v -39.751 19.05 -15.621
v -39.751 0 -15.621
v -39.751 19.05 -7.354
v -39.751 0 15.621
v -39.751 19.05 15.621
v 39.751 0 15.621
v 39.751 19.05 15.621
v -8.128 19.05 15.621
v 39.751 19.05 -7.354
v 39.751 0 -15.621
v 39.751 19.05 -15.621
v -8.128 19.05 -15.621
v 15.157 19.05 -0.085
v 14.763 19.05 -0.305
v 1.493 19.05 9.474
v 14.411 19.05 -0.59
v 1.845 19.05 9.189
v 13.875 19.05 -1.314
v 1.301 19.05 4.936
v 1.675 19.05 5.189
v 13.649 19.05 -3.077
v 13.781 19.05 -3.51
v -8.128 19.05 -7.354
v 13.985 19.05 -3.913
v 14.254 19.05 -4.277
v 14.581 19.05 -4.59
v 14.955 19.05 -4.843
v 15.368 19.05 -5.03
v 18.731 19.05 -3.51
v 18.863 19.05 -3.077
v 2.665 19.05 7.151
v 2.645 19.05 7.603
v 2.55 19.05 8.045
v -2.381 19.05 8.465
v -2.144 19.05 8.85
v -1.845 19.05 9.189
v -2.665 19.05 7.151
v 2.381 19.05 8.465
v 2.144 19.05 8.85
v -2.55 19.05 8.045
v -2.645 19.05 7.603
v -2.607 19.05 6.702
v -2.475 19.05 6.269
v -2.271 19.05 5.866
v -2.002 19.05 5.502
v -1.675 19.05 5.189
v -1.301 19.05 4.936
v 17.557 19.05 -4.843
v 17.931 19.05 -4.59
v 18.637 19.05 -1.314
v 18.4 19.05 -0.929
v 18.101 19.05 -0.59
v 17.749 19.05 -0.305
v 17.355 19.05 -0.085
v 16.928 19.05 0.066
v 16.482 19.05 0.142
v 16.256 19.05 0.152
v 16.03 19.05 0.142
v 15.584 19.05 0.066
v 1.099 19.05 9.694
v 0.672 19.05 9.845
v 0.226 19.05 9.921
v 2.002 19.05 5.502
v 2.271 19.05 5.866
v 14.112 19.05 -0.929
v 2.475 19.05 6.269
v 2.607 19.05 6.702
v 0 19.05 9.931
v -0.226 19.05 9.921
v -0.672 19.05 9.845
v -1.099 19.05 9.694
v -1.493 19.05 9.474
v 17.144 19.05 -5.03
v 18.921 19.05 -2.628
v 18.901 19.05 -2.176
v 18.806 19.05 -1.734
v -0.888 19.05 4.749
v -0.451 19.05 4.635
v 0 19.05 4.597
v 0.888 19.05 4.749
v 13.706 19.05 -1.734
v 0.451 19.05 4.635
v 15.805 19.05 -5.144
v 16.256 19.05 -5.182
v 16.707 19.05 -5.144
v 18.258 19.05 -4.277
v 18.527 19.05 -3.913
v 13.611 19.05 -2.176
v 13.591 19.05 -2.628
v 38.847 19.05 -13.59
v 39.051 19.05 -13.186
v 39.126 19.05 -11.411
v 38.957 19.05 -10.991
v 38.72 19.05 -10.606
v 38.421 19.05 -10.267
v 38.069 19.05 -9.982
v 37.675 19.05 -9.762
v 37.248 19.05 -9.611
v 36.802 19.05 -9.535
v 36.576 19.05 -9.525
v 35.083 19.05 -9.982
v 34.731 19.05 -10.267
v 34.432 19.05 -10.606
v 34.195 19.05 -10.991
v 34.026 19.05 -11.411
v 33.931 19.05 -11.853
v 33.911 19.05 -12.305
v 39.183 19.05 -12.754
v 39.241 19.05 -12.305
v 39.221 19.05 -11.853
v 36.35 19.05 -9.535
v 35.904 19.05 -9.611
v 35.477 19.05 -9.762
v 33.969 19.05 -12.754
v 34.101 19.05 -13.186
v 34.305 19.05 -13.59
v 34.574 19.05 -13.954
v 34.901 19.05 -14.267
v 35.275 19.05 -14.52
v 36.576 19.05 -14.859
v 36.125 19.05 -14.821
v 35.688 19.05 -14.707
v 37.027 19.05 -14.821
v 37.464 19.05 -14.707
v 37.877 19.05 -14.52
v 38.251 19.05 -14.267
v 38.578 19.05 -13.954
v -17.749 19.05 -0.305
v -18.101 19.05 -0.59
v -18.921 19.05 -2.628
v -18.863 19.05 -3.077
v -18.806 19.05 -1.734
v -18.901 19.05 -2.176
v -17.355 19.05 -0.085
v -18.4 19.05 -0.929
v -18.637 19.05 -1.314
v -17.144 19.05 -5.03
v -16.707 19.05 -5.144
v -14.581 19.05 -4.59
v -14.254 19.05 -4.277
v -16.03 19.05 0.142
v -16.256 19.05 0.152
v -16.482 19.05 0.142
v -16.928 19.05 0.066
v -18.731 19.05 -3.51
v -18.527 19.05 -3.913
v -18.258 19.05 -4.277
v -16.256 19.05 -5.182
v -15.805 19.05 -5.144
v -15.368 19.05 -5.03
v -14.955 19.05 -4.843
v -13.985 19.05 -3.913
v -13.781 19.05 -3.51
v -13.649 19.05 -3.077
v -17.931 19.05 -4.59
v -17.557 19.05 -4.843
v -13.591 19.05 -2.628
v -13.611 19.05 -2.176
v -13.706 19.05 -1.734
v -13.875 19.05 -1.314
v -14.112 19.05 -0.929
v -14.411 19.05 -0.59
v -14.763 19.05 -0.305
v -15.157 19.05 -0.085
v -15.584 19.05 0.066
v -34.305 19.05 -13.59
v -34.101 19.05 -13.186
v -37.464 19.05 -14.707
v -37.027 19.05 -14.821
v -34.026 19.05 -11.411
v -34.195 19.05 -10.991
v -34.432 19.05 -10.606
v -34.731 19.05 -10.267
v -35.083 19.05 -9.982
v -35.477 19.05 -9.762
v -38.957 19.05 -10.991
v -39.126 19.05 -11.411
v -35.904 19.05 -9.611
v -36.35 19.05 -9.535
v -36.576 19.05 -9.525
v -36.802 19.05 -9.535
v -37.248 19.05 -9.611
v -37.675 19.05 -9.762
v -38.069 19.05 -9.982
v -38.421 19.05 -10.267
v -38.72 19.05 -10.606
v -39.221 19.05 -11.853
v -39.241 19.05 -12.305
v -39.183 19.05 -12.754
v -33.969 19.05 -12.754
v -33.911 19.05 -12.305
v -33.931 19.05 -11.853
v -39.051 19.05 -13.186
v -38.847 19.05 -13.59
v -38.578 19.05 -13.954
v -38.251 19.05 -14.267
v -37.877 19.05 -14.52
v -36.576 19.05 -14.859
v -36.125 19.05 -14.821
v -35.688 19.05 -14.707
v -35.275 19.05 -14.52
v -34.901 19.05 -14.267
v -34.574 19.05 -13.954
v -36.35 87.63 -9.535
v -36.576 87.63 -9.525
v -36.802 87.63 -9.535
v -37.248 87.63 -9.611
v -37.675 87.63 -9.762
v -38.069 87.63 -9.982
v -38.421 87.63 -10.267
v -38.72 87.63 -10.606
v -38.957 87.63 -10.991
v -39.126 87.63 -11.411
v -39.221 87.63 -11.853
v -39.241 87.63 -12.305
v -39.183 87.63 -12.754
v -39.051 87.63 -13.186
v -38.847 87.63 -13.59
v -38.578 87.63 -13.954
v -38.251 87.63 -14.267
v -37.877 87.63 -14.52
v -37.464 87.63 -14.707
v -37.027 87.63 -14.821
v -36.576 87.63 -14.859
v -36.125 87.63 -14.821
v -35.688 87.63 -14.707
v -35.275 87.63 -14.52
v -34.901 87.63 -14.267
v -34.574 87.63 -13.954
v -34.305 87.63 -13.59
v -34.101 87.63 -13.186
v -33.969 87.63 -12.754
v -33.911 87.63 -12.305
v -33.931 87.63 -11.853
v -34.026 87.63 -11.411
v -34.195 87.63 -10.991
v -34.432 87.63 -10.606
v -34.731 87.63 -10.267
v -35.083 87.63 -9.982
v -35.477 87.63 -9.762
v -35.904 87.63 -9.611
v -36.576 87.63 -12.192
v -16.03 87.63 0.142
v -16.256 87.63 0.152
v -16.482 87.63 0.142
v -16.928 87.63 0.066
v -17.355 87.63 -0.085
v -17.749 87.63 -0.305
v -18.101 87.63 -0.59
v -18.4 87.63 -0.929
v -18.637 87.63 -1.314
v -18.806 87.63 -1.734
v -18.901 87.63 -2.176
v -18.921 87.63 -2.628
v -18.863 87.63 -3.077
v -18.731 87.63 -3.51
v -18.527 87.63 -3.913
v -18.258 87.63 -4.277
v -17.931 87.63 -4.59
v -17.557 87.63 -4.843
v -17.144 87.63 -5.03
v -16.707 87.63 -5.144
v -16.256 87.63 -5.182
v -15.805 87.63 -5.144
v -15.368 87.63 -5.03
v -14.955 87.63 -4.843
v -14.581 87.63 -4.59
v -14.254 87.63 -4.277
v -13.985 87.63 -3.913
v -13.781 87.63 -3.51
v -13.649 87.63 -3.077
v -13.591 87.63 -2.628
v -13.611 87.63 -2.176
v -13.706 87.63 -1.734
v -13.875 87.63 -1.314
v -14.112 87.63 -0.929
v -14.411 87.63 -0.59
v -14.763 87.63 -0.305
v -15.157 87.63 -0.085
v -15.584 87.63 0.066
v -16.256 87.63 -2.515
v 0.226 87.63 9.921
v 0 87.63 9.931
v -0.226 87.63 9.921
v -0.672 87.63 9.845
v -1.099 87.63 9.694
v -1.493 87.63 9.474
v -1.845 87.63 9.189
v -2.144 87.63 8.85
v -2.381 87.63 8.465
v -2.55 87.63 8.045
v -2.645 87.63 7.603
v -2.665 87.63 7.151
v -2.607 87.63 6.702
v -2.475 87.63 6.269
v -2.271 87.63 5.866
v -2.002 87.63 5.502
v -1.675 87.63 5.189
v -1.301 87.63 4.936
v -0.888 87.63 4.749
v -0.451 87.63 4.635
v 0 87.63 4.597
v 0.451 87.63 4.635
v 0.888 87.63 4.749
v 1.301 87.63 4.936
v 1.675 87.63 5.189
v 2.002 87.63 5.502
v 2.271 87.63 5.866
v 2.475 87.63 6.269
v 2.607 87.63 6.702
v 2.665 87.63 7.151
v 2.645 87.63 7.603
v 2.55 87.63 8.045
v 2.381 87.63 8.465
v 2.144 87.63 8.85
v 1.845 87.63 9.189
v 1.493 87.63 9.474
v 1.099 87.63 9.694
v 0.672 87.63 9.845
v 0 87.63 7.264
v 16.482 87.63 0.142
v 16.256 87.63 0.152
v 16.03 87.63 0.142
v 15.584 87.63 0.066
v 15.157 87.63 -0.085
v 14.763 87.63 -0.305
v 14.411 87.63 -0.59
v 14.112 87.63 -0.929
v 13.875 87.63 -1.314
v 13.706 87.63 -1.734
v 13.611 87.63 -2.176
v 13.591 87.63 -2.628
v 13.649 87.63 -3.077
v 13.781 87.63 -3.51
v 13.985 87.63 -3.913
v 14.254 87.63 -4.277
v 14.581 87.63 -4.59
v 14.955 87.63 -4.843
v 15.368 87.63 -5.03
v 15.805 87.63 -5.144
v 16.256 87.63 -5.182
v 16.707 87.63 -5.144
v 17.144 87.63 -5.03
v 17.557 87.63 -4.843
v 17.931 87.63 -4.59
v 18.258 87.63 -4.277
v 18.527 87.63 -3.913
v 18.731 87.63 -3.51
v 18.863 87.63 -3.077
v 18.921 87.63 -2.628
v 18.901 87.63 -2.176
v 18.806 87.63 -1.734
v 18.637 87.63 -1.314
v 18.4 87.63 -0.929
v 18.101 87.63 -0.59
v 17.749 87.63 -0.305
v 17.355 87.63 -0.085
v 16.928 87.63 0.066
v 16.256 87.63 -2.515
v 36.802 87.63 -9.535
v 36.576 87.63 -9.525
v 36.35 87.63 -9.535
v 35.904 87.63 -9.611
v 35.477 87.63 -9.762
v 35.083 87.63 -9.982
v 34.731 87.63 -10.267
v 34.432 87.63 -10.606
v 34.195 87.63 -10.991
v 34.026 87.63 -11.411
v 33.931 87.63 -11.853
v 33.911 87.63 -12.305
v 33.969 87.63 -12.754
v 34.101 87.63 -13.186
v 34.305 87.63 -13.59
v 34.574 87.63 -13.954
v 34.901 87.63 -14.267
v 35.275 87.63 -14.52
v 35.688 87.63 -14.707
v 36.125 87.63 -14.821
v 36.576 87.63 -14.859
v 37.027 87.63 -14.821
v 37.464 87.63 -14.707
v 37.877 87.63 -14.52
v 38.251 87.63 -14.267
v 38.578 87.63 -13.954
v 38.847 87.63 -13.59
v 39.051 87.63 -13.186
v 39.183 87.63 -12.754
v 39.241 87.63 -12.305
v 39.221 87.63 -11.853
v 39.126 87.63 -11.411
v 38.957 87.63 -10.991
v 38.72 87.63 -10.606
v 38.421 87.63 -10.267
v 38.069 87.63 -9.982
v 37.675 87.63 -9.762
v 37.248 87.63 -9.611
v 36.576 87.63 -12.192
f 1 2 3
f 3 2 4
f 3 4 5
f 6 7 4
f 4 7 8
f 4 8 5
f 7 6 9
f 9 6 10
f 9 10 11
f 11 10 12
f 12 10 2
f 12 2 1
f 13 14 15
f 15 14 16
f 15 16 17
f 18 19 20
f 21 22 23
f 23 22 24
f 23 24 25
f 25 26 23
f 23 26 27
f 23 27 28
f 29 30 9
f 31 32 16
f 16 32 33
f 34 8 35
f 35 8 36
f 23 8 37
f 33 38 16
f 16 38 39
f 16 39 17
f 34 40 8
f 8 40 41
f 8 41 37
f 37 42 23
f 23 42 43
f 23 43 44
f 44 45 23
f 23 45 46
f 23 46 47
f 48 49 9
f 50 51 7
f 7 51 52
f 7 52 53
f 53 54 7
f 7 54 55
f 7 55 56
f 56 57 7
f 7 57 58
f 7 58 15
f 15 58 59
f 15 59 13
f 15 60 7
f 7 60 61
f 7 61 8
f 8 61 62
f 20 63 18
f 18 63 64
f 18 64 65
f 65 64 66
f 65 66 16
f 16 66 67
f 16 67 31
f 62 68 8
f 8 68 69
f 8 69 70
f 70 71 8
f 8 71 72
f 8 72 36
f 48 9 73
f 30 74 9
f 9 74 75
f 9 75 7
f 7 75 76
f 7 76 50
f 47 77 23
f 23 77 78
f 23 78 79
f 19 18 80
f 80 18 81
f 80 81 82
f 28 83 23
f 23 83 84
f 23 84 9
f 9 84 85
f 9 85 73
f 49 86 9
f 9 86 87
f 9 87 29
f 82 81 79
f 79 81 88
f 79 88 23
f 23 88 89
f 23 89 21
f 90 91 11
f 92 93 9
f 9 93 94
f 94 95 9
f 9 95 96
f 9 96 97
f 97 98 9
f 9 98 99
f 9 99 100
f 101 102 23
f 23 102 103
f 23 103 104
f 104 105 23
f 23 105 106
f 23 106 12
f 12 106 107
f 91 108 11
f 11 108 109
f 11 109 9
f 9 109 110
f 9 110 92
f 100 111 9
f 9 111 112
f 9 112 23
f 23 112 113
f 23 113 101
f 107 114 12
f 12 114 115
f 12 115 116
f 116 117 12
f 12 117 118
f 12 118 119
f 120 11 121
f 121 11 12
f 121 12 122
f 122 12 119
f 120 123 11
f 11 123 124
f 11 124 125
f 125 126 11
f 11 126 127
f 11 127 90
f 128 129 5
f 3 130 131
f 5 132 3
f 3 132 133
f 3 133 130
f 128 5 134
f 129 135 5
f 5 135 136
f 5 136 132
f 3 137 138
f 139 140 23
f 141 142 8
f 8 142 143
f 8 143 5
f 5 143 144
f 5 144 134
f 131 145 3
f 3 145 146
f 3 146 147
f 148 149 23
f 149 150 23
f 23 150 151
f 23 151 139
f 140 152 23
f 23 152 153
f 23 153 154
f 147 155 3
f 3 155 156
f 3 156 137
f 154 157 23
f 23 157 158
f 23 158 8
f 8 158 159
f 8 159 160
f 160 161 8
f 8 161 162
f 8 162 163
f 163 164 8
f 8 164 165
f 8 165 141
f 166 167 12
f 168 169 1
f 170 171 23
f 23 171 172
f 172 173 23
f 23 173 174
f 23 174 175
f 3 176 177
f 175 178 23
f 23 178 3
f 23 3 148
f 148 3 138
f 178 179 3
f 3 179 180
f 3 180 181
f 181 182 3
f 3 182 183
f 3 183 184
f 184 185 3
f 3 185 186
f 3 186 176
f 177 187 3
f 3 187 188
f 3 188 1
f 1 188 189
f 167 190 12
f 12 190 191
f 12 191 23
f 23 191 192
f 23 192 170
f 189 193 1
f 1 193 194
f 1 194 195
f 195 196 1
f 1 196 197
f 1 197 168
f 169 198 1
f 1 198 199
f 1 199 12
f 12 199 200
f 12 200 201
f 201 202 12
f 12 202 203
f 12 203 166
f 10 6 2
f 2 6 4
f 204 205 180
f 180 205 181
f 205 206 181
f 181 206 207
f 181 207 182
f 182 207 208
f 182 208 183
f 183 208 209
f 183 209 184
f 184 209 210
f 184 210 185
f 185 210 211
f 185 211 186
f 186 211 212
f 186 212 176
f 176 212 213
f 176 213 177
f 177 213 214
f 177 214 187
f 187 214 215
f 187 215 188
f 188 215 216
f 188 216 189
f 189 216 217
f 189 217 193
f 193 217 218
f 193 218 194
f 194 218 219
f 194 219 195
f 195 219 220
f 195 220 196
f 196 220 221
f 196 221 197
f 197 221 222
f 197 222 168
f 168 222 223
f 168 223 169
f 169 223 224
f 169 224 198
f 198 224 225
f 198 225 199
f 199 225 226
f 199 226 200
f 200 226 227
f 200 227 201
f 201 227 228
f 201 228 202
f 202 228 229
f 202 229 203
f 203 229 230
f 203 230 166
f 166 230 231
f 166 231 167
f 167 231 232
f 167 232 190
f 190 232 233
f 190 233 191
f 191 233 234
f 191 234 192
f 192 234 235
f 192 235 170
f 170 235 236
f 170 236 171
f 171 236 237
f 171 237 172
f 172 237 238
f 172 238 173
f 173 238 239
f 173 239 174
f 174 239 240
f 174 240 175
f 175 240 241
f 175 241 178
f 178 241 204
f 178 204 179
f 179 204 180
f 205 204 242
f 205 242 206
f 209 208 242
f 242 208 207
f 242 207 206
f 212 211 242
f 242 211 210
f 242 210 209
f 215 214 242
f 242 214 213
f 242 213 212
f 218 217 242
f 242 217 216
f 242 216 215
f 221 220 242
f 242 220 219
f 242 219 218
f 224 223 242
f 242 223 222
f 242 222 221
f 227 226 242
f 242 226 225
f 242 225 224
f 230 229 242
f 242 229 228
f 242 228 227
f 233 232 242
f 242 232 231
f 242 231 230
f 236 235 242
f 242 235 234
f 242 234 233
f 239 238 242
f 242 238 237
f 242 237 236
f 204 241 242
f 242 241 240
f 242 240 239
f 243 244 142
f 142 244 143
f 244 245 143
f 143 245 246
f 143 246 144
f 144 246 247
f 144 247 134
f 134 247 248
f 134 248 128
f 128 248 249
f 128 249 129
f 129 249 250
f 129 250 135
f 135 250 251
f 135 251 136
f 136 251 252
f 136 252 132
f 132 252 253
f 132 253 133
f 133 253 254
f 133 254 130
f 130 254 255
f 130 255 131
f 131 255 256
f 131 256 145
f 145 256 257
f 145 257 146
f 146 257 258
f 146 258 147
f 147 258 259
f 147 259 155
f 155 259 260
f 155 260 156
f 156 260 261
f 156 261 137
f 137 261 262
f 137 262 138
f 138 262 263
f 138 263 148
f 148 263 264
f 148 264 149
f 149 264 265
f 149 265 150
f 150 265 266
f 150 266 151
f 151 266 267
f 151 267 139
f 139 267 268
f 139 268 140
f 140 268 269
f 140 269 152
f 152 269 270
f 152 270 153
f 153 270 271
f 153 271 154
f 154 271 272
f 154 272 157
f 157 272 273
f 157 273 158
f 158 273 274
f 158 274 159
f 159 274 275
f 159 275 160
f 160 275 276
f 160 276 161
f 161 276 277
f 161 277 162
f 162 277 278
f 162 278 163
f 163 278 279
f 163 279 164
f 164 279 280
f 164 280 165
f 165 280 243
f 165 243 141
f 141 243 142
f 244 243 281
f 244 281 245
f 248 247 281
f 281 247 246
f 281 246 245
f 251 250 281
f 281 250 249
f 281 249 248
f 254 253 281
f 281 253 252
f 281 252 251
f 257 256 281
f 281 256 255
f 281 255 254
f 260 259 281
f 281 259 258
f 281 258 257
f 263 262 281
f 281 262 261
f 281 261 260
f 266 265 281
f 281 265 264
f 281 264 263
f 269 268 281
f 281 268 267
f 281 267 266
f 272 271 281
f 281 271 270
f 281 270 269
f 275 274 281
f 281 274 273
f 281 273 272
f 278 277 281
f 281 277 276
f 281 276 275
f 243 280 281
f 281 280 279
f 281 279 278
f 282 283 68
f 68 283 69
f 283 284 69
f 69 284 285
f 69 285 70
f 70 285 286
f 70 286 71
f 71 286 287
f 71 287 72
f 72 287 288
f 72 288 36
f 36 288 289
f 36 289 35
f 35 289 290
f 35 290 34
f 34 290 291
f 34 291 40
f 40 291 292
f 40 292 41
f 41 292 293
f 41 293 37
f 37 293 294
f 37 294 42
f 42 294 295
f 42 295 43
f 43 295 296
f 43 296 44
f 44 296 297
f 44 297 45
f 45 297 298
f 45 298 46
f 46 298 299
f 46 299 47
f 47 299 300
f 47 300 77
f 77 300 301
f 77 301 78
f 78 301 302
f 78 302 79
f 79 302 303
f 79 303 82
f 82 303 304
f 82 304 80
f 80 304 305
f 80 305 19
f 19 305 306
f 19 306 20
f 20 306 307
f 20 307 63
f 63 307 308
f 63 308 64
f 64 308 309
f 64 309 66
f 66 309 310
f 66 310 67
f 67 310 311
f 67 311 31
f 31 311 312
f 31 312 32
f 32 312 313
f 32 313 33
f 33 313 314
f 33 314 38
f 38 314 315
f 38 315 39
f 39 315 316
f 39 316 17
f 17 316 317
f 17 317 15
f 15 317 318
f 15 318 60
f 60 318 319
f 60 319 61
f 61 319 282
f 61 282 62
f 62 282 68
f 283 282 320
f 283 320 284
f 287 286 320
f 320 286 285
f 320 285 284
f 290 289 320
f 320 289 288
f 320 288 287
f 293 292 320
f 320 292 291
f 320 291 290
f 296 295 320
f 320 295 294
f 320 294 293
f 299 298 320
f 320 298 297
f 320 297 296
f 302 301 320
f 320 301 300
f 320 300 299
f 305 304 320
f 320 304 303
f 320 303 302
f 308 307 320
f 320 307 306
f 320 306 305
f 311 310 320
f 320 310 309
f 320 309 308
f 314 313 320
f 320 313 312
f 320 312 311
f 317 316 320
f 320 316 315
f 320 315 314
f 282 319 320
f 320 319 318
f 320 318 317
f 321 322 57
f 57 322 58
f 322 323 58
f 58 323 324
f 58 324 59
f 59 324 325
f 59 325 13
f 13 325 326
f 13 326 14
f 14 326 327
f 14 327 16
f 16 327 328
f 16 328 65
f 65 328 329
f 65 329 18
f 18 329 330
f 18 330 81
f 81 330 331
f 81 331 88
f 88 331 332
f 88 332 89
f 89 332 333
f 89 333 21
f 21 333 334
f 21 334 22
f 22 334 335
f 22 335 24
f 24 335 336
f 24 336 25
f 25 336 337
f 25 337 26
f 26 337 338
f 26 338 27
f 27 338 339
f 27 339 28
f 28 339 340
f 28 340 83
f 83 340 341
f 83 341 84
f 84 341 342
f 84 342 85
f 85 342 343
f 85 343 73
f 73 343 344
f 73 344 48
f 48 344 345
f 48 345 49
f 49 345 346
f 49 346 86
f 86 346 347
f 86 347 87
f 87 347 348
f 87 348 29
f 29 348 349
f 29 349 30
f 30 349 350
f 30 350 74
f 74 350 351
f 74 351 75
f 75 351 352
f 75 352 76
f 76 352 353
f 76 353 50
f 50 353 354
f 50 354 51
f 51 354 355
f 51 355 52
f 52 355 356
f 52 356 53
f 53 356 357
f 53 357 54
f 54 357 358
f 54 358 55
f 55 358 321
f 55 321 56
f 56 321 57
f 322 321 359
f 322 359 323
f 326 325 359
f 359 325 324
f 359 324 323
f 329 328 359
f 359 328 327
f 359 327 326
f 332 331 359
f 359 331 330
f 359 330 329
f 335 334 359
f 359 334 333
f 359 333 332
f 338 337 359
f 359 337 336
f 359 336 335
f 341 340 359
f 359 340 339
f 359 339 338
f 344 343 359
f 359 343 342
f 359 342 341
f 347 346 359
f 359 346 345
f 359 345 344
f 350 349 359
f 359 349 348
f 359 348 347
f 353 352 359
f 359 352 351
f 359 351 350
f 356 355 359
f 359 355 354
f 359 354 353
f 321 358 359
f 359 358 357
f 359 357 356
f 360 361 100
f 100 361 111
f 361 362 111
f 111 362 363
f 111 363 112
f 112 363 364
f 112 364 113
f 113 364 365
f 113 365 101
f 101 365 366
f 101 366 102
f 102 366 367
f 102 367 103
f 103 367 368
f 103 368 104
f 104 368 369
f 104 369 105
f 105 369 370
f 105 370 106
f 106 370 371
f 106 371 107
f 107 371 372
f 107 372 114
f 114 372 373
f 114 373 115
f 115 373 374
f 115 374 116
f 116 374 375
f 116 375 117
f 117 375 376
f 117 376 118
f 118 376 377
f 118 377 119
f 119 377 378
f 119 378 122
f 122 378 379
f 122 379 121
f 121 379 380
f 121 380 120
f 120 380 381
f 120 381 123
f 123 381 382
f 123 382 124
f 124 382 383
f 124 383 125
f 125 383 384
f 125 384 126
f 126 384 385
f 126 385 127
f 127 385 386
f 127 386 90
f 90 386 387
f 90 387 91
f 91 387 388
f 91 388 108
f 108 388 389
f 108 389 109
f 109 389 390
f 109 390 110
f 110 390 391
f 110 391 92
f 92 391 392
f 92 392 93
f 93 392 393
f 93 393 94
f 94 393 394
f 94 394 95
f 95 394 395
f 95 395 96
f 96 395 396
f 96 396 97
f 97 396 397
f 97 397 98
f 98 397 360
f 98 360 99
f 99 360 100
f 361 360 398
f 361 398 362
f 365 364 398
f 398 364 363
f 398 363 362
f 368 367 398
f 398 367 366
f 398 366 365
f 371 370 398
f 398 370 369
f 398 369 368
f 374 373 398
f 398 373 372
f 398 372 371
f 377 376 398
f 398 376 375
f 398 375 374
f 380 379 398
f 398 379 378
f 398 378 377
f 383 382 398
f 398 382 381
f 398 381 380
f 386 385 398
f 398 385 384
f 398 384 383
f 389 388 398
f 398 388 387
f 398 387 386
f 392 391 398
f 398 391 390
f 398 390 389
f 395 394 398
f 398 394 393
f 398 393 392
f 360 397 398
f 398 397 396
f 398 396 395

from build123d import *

# Parameters (mm, degrees)
SKETCH1_W           = 79.502
SKETCH1_H           = 31.242
BOSS_EXTRUDE1_DEPTH = 19.05
SKETCH2_R           = 2.667
BOSS_EXTRUDE2_DEPTH = 68.58


with BuildPart() as part:
    # Sketch1 → Boss-Extrude1 (new body)
    with BuildSketch(Plane(origin=(0, 0, 0), x_dir=(1, 0, 0), z_dir=(0, 1, 0))):
        Rectangle(SKETCH1_W, SKETCH1_H)
    extrude(amount=BOSS_EXTRUDE1_DEPTH)

    # Sketch2 → Boss-Extrude2 (add)
    with BuildSketch(Plane(origin=(0, 19.05, 0), x_dir=(1, 0, 0), z_dir=(0, 1, 0))):
        with Locations(Location((-36.576, 12.192, 0), (0, 0, 270))):
            Circle(SKETCH2_R)
        with Locations(Location((-16.256, 2.515131479, 0), (0, 0, 270))):
            Circle(SKETCH2_R)
        with Locations(Location((0, -7.263868521, 0), (0, 0, 270))):
            Circle(SKETCH2_R)
        with Locations(Location((16.256, 2.515131479, 0), (0, 0, 270))):
            Circle(SKETCH2_R)
        with Locations(Location((36.576, 12.192, 0), (0, 0, 270))):
            Circle(SKETCH2_R)
    extrude(amount=BOSS_EXTRUDE2_DEPTH)


solid = part.part
